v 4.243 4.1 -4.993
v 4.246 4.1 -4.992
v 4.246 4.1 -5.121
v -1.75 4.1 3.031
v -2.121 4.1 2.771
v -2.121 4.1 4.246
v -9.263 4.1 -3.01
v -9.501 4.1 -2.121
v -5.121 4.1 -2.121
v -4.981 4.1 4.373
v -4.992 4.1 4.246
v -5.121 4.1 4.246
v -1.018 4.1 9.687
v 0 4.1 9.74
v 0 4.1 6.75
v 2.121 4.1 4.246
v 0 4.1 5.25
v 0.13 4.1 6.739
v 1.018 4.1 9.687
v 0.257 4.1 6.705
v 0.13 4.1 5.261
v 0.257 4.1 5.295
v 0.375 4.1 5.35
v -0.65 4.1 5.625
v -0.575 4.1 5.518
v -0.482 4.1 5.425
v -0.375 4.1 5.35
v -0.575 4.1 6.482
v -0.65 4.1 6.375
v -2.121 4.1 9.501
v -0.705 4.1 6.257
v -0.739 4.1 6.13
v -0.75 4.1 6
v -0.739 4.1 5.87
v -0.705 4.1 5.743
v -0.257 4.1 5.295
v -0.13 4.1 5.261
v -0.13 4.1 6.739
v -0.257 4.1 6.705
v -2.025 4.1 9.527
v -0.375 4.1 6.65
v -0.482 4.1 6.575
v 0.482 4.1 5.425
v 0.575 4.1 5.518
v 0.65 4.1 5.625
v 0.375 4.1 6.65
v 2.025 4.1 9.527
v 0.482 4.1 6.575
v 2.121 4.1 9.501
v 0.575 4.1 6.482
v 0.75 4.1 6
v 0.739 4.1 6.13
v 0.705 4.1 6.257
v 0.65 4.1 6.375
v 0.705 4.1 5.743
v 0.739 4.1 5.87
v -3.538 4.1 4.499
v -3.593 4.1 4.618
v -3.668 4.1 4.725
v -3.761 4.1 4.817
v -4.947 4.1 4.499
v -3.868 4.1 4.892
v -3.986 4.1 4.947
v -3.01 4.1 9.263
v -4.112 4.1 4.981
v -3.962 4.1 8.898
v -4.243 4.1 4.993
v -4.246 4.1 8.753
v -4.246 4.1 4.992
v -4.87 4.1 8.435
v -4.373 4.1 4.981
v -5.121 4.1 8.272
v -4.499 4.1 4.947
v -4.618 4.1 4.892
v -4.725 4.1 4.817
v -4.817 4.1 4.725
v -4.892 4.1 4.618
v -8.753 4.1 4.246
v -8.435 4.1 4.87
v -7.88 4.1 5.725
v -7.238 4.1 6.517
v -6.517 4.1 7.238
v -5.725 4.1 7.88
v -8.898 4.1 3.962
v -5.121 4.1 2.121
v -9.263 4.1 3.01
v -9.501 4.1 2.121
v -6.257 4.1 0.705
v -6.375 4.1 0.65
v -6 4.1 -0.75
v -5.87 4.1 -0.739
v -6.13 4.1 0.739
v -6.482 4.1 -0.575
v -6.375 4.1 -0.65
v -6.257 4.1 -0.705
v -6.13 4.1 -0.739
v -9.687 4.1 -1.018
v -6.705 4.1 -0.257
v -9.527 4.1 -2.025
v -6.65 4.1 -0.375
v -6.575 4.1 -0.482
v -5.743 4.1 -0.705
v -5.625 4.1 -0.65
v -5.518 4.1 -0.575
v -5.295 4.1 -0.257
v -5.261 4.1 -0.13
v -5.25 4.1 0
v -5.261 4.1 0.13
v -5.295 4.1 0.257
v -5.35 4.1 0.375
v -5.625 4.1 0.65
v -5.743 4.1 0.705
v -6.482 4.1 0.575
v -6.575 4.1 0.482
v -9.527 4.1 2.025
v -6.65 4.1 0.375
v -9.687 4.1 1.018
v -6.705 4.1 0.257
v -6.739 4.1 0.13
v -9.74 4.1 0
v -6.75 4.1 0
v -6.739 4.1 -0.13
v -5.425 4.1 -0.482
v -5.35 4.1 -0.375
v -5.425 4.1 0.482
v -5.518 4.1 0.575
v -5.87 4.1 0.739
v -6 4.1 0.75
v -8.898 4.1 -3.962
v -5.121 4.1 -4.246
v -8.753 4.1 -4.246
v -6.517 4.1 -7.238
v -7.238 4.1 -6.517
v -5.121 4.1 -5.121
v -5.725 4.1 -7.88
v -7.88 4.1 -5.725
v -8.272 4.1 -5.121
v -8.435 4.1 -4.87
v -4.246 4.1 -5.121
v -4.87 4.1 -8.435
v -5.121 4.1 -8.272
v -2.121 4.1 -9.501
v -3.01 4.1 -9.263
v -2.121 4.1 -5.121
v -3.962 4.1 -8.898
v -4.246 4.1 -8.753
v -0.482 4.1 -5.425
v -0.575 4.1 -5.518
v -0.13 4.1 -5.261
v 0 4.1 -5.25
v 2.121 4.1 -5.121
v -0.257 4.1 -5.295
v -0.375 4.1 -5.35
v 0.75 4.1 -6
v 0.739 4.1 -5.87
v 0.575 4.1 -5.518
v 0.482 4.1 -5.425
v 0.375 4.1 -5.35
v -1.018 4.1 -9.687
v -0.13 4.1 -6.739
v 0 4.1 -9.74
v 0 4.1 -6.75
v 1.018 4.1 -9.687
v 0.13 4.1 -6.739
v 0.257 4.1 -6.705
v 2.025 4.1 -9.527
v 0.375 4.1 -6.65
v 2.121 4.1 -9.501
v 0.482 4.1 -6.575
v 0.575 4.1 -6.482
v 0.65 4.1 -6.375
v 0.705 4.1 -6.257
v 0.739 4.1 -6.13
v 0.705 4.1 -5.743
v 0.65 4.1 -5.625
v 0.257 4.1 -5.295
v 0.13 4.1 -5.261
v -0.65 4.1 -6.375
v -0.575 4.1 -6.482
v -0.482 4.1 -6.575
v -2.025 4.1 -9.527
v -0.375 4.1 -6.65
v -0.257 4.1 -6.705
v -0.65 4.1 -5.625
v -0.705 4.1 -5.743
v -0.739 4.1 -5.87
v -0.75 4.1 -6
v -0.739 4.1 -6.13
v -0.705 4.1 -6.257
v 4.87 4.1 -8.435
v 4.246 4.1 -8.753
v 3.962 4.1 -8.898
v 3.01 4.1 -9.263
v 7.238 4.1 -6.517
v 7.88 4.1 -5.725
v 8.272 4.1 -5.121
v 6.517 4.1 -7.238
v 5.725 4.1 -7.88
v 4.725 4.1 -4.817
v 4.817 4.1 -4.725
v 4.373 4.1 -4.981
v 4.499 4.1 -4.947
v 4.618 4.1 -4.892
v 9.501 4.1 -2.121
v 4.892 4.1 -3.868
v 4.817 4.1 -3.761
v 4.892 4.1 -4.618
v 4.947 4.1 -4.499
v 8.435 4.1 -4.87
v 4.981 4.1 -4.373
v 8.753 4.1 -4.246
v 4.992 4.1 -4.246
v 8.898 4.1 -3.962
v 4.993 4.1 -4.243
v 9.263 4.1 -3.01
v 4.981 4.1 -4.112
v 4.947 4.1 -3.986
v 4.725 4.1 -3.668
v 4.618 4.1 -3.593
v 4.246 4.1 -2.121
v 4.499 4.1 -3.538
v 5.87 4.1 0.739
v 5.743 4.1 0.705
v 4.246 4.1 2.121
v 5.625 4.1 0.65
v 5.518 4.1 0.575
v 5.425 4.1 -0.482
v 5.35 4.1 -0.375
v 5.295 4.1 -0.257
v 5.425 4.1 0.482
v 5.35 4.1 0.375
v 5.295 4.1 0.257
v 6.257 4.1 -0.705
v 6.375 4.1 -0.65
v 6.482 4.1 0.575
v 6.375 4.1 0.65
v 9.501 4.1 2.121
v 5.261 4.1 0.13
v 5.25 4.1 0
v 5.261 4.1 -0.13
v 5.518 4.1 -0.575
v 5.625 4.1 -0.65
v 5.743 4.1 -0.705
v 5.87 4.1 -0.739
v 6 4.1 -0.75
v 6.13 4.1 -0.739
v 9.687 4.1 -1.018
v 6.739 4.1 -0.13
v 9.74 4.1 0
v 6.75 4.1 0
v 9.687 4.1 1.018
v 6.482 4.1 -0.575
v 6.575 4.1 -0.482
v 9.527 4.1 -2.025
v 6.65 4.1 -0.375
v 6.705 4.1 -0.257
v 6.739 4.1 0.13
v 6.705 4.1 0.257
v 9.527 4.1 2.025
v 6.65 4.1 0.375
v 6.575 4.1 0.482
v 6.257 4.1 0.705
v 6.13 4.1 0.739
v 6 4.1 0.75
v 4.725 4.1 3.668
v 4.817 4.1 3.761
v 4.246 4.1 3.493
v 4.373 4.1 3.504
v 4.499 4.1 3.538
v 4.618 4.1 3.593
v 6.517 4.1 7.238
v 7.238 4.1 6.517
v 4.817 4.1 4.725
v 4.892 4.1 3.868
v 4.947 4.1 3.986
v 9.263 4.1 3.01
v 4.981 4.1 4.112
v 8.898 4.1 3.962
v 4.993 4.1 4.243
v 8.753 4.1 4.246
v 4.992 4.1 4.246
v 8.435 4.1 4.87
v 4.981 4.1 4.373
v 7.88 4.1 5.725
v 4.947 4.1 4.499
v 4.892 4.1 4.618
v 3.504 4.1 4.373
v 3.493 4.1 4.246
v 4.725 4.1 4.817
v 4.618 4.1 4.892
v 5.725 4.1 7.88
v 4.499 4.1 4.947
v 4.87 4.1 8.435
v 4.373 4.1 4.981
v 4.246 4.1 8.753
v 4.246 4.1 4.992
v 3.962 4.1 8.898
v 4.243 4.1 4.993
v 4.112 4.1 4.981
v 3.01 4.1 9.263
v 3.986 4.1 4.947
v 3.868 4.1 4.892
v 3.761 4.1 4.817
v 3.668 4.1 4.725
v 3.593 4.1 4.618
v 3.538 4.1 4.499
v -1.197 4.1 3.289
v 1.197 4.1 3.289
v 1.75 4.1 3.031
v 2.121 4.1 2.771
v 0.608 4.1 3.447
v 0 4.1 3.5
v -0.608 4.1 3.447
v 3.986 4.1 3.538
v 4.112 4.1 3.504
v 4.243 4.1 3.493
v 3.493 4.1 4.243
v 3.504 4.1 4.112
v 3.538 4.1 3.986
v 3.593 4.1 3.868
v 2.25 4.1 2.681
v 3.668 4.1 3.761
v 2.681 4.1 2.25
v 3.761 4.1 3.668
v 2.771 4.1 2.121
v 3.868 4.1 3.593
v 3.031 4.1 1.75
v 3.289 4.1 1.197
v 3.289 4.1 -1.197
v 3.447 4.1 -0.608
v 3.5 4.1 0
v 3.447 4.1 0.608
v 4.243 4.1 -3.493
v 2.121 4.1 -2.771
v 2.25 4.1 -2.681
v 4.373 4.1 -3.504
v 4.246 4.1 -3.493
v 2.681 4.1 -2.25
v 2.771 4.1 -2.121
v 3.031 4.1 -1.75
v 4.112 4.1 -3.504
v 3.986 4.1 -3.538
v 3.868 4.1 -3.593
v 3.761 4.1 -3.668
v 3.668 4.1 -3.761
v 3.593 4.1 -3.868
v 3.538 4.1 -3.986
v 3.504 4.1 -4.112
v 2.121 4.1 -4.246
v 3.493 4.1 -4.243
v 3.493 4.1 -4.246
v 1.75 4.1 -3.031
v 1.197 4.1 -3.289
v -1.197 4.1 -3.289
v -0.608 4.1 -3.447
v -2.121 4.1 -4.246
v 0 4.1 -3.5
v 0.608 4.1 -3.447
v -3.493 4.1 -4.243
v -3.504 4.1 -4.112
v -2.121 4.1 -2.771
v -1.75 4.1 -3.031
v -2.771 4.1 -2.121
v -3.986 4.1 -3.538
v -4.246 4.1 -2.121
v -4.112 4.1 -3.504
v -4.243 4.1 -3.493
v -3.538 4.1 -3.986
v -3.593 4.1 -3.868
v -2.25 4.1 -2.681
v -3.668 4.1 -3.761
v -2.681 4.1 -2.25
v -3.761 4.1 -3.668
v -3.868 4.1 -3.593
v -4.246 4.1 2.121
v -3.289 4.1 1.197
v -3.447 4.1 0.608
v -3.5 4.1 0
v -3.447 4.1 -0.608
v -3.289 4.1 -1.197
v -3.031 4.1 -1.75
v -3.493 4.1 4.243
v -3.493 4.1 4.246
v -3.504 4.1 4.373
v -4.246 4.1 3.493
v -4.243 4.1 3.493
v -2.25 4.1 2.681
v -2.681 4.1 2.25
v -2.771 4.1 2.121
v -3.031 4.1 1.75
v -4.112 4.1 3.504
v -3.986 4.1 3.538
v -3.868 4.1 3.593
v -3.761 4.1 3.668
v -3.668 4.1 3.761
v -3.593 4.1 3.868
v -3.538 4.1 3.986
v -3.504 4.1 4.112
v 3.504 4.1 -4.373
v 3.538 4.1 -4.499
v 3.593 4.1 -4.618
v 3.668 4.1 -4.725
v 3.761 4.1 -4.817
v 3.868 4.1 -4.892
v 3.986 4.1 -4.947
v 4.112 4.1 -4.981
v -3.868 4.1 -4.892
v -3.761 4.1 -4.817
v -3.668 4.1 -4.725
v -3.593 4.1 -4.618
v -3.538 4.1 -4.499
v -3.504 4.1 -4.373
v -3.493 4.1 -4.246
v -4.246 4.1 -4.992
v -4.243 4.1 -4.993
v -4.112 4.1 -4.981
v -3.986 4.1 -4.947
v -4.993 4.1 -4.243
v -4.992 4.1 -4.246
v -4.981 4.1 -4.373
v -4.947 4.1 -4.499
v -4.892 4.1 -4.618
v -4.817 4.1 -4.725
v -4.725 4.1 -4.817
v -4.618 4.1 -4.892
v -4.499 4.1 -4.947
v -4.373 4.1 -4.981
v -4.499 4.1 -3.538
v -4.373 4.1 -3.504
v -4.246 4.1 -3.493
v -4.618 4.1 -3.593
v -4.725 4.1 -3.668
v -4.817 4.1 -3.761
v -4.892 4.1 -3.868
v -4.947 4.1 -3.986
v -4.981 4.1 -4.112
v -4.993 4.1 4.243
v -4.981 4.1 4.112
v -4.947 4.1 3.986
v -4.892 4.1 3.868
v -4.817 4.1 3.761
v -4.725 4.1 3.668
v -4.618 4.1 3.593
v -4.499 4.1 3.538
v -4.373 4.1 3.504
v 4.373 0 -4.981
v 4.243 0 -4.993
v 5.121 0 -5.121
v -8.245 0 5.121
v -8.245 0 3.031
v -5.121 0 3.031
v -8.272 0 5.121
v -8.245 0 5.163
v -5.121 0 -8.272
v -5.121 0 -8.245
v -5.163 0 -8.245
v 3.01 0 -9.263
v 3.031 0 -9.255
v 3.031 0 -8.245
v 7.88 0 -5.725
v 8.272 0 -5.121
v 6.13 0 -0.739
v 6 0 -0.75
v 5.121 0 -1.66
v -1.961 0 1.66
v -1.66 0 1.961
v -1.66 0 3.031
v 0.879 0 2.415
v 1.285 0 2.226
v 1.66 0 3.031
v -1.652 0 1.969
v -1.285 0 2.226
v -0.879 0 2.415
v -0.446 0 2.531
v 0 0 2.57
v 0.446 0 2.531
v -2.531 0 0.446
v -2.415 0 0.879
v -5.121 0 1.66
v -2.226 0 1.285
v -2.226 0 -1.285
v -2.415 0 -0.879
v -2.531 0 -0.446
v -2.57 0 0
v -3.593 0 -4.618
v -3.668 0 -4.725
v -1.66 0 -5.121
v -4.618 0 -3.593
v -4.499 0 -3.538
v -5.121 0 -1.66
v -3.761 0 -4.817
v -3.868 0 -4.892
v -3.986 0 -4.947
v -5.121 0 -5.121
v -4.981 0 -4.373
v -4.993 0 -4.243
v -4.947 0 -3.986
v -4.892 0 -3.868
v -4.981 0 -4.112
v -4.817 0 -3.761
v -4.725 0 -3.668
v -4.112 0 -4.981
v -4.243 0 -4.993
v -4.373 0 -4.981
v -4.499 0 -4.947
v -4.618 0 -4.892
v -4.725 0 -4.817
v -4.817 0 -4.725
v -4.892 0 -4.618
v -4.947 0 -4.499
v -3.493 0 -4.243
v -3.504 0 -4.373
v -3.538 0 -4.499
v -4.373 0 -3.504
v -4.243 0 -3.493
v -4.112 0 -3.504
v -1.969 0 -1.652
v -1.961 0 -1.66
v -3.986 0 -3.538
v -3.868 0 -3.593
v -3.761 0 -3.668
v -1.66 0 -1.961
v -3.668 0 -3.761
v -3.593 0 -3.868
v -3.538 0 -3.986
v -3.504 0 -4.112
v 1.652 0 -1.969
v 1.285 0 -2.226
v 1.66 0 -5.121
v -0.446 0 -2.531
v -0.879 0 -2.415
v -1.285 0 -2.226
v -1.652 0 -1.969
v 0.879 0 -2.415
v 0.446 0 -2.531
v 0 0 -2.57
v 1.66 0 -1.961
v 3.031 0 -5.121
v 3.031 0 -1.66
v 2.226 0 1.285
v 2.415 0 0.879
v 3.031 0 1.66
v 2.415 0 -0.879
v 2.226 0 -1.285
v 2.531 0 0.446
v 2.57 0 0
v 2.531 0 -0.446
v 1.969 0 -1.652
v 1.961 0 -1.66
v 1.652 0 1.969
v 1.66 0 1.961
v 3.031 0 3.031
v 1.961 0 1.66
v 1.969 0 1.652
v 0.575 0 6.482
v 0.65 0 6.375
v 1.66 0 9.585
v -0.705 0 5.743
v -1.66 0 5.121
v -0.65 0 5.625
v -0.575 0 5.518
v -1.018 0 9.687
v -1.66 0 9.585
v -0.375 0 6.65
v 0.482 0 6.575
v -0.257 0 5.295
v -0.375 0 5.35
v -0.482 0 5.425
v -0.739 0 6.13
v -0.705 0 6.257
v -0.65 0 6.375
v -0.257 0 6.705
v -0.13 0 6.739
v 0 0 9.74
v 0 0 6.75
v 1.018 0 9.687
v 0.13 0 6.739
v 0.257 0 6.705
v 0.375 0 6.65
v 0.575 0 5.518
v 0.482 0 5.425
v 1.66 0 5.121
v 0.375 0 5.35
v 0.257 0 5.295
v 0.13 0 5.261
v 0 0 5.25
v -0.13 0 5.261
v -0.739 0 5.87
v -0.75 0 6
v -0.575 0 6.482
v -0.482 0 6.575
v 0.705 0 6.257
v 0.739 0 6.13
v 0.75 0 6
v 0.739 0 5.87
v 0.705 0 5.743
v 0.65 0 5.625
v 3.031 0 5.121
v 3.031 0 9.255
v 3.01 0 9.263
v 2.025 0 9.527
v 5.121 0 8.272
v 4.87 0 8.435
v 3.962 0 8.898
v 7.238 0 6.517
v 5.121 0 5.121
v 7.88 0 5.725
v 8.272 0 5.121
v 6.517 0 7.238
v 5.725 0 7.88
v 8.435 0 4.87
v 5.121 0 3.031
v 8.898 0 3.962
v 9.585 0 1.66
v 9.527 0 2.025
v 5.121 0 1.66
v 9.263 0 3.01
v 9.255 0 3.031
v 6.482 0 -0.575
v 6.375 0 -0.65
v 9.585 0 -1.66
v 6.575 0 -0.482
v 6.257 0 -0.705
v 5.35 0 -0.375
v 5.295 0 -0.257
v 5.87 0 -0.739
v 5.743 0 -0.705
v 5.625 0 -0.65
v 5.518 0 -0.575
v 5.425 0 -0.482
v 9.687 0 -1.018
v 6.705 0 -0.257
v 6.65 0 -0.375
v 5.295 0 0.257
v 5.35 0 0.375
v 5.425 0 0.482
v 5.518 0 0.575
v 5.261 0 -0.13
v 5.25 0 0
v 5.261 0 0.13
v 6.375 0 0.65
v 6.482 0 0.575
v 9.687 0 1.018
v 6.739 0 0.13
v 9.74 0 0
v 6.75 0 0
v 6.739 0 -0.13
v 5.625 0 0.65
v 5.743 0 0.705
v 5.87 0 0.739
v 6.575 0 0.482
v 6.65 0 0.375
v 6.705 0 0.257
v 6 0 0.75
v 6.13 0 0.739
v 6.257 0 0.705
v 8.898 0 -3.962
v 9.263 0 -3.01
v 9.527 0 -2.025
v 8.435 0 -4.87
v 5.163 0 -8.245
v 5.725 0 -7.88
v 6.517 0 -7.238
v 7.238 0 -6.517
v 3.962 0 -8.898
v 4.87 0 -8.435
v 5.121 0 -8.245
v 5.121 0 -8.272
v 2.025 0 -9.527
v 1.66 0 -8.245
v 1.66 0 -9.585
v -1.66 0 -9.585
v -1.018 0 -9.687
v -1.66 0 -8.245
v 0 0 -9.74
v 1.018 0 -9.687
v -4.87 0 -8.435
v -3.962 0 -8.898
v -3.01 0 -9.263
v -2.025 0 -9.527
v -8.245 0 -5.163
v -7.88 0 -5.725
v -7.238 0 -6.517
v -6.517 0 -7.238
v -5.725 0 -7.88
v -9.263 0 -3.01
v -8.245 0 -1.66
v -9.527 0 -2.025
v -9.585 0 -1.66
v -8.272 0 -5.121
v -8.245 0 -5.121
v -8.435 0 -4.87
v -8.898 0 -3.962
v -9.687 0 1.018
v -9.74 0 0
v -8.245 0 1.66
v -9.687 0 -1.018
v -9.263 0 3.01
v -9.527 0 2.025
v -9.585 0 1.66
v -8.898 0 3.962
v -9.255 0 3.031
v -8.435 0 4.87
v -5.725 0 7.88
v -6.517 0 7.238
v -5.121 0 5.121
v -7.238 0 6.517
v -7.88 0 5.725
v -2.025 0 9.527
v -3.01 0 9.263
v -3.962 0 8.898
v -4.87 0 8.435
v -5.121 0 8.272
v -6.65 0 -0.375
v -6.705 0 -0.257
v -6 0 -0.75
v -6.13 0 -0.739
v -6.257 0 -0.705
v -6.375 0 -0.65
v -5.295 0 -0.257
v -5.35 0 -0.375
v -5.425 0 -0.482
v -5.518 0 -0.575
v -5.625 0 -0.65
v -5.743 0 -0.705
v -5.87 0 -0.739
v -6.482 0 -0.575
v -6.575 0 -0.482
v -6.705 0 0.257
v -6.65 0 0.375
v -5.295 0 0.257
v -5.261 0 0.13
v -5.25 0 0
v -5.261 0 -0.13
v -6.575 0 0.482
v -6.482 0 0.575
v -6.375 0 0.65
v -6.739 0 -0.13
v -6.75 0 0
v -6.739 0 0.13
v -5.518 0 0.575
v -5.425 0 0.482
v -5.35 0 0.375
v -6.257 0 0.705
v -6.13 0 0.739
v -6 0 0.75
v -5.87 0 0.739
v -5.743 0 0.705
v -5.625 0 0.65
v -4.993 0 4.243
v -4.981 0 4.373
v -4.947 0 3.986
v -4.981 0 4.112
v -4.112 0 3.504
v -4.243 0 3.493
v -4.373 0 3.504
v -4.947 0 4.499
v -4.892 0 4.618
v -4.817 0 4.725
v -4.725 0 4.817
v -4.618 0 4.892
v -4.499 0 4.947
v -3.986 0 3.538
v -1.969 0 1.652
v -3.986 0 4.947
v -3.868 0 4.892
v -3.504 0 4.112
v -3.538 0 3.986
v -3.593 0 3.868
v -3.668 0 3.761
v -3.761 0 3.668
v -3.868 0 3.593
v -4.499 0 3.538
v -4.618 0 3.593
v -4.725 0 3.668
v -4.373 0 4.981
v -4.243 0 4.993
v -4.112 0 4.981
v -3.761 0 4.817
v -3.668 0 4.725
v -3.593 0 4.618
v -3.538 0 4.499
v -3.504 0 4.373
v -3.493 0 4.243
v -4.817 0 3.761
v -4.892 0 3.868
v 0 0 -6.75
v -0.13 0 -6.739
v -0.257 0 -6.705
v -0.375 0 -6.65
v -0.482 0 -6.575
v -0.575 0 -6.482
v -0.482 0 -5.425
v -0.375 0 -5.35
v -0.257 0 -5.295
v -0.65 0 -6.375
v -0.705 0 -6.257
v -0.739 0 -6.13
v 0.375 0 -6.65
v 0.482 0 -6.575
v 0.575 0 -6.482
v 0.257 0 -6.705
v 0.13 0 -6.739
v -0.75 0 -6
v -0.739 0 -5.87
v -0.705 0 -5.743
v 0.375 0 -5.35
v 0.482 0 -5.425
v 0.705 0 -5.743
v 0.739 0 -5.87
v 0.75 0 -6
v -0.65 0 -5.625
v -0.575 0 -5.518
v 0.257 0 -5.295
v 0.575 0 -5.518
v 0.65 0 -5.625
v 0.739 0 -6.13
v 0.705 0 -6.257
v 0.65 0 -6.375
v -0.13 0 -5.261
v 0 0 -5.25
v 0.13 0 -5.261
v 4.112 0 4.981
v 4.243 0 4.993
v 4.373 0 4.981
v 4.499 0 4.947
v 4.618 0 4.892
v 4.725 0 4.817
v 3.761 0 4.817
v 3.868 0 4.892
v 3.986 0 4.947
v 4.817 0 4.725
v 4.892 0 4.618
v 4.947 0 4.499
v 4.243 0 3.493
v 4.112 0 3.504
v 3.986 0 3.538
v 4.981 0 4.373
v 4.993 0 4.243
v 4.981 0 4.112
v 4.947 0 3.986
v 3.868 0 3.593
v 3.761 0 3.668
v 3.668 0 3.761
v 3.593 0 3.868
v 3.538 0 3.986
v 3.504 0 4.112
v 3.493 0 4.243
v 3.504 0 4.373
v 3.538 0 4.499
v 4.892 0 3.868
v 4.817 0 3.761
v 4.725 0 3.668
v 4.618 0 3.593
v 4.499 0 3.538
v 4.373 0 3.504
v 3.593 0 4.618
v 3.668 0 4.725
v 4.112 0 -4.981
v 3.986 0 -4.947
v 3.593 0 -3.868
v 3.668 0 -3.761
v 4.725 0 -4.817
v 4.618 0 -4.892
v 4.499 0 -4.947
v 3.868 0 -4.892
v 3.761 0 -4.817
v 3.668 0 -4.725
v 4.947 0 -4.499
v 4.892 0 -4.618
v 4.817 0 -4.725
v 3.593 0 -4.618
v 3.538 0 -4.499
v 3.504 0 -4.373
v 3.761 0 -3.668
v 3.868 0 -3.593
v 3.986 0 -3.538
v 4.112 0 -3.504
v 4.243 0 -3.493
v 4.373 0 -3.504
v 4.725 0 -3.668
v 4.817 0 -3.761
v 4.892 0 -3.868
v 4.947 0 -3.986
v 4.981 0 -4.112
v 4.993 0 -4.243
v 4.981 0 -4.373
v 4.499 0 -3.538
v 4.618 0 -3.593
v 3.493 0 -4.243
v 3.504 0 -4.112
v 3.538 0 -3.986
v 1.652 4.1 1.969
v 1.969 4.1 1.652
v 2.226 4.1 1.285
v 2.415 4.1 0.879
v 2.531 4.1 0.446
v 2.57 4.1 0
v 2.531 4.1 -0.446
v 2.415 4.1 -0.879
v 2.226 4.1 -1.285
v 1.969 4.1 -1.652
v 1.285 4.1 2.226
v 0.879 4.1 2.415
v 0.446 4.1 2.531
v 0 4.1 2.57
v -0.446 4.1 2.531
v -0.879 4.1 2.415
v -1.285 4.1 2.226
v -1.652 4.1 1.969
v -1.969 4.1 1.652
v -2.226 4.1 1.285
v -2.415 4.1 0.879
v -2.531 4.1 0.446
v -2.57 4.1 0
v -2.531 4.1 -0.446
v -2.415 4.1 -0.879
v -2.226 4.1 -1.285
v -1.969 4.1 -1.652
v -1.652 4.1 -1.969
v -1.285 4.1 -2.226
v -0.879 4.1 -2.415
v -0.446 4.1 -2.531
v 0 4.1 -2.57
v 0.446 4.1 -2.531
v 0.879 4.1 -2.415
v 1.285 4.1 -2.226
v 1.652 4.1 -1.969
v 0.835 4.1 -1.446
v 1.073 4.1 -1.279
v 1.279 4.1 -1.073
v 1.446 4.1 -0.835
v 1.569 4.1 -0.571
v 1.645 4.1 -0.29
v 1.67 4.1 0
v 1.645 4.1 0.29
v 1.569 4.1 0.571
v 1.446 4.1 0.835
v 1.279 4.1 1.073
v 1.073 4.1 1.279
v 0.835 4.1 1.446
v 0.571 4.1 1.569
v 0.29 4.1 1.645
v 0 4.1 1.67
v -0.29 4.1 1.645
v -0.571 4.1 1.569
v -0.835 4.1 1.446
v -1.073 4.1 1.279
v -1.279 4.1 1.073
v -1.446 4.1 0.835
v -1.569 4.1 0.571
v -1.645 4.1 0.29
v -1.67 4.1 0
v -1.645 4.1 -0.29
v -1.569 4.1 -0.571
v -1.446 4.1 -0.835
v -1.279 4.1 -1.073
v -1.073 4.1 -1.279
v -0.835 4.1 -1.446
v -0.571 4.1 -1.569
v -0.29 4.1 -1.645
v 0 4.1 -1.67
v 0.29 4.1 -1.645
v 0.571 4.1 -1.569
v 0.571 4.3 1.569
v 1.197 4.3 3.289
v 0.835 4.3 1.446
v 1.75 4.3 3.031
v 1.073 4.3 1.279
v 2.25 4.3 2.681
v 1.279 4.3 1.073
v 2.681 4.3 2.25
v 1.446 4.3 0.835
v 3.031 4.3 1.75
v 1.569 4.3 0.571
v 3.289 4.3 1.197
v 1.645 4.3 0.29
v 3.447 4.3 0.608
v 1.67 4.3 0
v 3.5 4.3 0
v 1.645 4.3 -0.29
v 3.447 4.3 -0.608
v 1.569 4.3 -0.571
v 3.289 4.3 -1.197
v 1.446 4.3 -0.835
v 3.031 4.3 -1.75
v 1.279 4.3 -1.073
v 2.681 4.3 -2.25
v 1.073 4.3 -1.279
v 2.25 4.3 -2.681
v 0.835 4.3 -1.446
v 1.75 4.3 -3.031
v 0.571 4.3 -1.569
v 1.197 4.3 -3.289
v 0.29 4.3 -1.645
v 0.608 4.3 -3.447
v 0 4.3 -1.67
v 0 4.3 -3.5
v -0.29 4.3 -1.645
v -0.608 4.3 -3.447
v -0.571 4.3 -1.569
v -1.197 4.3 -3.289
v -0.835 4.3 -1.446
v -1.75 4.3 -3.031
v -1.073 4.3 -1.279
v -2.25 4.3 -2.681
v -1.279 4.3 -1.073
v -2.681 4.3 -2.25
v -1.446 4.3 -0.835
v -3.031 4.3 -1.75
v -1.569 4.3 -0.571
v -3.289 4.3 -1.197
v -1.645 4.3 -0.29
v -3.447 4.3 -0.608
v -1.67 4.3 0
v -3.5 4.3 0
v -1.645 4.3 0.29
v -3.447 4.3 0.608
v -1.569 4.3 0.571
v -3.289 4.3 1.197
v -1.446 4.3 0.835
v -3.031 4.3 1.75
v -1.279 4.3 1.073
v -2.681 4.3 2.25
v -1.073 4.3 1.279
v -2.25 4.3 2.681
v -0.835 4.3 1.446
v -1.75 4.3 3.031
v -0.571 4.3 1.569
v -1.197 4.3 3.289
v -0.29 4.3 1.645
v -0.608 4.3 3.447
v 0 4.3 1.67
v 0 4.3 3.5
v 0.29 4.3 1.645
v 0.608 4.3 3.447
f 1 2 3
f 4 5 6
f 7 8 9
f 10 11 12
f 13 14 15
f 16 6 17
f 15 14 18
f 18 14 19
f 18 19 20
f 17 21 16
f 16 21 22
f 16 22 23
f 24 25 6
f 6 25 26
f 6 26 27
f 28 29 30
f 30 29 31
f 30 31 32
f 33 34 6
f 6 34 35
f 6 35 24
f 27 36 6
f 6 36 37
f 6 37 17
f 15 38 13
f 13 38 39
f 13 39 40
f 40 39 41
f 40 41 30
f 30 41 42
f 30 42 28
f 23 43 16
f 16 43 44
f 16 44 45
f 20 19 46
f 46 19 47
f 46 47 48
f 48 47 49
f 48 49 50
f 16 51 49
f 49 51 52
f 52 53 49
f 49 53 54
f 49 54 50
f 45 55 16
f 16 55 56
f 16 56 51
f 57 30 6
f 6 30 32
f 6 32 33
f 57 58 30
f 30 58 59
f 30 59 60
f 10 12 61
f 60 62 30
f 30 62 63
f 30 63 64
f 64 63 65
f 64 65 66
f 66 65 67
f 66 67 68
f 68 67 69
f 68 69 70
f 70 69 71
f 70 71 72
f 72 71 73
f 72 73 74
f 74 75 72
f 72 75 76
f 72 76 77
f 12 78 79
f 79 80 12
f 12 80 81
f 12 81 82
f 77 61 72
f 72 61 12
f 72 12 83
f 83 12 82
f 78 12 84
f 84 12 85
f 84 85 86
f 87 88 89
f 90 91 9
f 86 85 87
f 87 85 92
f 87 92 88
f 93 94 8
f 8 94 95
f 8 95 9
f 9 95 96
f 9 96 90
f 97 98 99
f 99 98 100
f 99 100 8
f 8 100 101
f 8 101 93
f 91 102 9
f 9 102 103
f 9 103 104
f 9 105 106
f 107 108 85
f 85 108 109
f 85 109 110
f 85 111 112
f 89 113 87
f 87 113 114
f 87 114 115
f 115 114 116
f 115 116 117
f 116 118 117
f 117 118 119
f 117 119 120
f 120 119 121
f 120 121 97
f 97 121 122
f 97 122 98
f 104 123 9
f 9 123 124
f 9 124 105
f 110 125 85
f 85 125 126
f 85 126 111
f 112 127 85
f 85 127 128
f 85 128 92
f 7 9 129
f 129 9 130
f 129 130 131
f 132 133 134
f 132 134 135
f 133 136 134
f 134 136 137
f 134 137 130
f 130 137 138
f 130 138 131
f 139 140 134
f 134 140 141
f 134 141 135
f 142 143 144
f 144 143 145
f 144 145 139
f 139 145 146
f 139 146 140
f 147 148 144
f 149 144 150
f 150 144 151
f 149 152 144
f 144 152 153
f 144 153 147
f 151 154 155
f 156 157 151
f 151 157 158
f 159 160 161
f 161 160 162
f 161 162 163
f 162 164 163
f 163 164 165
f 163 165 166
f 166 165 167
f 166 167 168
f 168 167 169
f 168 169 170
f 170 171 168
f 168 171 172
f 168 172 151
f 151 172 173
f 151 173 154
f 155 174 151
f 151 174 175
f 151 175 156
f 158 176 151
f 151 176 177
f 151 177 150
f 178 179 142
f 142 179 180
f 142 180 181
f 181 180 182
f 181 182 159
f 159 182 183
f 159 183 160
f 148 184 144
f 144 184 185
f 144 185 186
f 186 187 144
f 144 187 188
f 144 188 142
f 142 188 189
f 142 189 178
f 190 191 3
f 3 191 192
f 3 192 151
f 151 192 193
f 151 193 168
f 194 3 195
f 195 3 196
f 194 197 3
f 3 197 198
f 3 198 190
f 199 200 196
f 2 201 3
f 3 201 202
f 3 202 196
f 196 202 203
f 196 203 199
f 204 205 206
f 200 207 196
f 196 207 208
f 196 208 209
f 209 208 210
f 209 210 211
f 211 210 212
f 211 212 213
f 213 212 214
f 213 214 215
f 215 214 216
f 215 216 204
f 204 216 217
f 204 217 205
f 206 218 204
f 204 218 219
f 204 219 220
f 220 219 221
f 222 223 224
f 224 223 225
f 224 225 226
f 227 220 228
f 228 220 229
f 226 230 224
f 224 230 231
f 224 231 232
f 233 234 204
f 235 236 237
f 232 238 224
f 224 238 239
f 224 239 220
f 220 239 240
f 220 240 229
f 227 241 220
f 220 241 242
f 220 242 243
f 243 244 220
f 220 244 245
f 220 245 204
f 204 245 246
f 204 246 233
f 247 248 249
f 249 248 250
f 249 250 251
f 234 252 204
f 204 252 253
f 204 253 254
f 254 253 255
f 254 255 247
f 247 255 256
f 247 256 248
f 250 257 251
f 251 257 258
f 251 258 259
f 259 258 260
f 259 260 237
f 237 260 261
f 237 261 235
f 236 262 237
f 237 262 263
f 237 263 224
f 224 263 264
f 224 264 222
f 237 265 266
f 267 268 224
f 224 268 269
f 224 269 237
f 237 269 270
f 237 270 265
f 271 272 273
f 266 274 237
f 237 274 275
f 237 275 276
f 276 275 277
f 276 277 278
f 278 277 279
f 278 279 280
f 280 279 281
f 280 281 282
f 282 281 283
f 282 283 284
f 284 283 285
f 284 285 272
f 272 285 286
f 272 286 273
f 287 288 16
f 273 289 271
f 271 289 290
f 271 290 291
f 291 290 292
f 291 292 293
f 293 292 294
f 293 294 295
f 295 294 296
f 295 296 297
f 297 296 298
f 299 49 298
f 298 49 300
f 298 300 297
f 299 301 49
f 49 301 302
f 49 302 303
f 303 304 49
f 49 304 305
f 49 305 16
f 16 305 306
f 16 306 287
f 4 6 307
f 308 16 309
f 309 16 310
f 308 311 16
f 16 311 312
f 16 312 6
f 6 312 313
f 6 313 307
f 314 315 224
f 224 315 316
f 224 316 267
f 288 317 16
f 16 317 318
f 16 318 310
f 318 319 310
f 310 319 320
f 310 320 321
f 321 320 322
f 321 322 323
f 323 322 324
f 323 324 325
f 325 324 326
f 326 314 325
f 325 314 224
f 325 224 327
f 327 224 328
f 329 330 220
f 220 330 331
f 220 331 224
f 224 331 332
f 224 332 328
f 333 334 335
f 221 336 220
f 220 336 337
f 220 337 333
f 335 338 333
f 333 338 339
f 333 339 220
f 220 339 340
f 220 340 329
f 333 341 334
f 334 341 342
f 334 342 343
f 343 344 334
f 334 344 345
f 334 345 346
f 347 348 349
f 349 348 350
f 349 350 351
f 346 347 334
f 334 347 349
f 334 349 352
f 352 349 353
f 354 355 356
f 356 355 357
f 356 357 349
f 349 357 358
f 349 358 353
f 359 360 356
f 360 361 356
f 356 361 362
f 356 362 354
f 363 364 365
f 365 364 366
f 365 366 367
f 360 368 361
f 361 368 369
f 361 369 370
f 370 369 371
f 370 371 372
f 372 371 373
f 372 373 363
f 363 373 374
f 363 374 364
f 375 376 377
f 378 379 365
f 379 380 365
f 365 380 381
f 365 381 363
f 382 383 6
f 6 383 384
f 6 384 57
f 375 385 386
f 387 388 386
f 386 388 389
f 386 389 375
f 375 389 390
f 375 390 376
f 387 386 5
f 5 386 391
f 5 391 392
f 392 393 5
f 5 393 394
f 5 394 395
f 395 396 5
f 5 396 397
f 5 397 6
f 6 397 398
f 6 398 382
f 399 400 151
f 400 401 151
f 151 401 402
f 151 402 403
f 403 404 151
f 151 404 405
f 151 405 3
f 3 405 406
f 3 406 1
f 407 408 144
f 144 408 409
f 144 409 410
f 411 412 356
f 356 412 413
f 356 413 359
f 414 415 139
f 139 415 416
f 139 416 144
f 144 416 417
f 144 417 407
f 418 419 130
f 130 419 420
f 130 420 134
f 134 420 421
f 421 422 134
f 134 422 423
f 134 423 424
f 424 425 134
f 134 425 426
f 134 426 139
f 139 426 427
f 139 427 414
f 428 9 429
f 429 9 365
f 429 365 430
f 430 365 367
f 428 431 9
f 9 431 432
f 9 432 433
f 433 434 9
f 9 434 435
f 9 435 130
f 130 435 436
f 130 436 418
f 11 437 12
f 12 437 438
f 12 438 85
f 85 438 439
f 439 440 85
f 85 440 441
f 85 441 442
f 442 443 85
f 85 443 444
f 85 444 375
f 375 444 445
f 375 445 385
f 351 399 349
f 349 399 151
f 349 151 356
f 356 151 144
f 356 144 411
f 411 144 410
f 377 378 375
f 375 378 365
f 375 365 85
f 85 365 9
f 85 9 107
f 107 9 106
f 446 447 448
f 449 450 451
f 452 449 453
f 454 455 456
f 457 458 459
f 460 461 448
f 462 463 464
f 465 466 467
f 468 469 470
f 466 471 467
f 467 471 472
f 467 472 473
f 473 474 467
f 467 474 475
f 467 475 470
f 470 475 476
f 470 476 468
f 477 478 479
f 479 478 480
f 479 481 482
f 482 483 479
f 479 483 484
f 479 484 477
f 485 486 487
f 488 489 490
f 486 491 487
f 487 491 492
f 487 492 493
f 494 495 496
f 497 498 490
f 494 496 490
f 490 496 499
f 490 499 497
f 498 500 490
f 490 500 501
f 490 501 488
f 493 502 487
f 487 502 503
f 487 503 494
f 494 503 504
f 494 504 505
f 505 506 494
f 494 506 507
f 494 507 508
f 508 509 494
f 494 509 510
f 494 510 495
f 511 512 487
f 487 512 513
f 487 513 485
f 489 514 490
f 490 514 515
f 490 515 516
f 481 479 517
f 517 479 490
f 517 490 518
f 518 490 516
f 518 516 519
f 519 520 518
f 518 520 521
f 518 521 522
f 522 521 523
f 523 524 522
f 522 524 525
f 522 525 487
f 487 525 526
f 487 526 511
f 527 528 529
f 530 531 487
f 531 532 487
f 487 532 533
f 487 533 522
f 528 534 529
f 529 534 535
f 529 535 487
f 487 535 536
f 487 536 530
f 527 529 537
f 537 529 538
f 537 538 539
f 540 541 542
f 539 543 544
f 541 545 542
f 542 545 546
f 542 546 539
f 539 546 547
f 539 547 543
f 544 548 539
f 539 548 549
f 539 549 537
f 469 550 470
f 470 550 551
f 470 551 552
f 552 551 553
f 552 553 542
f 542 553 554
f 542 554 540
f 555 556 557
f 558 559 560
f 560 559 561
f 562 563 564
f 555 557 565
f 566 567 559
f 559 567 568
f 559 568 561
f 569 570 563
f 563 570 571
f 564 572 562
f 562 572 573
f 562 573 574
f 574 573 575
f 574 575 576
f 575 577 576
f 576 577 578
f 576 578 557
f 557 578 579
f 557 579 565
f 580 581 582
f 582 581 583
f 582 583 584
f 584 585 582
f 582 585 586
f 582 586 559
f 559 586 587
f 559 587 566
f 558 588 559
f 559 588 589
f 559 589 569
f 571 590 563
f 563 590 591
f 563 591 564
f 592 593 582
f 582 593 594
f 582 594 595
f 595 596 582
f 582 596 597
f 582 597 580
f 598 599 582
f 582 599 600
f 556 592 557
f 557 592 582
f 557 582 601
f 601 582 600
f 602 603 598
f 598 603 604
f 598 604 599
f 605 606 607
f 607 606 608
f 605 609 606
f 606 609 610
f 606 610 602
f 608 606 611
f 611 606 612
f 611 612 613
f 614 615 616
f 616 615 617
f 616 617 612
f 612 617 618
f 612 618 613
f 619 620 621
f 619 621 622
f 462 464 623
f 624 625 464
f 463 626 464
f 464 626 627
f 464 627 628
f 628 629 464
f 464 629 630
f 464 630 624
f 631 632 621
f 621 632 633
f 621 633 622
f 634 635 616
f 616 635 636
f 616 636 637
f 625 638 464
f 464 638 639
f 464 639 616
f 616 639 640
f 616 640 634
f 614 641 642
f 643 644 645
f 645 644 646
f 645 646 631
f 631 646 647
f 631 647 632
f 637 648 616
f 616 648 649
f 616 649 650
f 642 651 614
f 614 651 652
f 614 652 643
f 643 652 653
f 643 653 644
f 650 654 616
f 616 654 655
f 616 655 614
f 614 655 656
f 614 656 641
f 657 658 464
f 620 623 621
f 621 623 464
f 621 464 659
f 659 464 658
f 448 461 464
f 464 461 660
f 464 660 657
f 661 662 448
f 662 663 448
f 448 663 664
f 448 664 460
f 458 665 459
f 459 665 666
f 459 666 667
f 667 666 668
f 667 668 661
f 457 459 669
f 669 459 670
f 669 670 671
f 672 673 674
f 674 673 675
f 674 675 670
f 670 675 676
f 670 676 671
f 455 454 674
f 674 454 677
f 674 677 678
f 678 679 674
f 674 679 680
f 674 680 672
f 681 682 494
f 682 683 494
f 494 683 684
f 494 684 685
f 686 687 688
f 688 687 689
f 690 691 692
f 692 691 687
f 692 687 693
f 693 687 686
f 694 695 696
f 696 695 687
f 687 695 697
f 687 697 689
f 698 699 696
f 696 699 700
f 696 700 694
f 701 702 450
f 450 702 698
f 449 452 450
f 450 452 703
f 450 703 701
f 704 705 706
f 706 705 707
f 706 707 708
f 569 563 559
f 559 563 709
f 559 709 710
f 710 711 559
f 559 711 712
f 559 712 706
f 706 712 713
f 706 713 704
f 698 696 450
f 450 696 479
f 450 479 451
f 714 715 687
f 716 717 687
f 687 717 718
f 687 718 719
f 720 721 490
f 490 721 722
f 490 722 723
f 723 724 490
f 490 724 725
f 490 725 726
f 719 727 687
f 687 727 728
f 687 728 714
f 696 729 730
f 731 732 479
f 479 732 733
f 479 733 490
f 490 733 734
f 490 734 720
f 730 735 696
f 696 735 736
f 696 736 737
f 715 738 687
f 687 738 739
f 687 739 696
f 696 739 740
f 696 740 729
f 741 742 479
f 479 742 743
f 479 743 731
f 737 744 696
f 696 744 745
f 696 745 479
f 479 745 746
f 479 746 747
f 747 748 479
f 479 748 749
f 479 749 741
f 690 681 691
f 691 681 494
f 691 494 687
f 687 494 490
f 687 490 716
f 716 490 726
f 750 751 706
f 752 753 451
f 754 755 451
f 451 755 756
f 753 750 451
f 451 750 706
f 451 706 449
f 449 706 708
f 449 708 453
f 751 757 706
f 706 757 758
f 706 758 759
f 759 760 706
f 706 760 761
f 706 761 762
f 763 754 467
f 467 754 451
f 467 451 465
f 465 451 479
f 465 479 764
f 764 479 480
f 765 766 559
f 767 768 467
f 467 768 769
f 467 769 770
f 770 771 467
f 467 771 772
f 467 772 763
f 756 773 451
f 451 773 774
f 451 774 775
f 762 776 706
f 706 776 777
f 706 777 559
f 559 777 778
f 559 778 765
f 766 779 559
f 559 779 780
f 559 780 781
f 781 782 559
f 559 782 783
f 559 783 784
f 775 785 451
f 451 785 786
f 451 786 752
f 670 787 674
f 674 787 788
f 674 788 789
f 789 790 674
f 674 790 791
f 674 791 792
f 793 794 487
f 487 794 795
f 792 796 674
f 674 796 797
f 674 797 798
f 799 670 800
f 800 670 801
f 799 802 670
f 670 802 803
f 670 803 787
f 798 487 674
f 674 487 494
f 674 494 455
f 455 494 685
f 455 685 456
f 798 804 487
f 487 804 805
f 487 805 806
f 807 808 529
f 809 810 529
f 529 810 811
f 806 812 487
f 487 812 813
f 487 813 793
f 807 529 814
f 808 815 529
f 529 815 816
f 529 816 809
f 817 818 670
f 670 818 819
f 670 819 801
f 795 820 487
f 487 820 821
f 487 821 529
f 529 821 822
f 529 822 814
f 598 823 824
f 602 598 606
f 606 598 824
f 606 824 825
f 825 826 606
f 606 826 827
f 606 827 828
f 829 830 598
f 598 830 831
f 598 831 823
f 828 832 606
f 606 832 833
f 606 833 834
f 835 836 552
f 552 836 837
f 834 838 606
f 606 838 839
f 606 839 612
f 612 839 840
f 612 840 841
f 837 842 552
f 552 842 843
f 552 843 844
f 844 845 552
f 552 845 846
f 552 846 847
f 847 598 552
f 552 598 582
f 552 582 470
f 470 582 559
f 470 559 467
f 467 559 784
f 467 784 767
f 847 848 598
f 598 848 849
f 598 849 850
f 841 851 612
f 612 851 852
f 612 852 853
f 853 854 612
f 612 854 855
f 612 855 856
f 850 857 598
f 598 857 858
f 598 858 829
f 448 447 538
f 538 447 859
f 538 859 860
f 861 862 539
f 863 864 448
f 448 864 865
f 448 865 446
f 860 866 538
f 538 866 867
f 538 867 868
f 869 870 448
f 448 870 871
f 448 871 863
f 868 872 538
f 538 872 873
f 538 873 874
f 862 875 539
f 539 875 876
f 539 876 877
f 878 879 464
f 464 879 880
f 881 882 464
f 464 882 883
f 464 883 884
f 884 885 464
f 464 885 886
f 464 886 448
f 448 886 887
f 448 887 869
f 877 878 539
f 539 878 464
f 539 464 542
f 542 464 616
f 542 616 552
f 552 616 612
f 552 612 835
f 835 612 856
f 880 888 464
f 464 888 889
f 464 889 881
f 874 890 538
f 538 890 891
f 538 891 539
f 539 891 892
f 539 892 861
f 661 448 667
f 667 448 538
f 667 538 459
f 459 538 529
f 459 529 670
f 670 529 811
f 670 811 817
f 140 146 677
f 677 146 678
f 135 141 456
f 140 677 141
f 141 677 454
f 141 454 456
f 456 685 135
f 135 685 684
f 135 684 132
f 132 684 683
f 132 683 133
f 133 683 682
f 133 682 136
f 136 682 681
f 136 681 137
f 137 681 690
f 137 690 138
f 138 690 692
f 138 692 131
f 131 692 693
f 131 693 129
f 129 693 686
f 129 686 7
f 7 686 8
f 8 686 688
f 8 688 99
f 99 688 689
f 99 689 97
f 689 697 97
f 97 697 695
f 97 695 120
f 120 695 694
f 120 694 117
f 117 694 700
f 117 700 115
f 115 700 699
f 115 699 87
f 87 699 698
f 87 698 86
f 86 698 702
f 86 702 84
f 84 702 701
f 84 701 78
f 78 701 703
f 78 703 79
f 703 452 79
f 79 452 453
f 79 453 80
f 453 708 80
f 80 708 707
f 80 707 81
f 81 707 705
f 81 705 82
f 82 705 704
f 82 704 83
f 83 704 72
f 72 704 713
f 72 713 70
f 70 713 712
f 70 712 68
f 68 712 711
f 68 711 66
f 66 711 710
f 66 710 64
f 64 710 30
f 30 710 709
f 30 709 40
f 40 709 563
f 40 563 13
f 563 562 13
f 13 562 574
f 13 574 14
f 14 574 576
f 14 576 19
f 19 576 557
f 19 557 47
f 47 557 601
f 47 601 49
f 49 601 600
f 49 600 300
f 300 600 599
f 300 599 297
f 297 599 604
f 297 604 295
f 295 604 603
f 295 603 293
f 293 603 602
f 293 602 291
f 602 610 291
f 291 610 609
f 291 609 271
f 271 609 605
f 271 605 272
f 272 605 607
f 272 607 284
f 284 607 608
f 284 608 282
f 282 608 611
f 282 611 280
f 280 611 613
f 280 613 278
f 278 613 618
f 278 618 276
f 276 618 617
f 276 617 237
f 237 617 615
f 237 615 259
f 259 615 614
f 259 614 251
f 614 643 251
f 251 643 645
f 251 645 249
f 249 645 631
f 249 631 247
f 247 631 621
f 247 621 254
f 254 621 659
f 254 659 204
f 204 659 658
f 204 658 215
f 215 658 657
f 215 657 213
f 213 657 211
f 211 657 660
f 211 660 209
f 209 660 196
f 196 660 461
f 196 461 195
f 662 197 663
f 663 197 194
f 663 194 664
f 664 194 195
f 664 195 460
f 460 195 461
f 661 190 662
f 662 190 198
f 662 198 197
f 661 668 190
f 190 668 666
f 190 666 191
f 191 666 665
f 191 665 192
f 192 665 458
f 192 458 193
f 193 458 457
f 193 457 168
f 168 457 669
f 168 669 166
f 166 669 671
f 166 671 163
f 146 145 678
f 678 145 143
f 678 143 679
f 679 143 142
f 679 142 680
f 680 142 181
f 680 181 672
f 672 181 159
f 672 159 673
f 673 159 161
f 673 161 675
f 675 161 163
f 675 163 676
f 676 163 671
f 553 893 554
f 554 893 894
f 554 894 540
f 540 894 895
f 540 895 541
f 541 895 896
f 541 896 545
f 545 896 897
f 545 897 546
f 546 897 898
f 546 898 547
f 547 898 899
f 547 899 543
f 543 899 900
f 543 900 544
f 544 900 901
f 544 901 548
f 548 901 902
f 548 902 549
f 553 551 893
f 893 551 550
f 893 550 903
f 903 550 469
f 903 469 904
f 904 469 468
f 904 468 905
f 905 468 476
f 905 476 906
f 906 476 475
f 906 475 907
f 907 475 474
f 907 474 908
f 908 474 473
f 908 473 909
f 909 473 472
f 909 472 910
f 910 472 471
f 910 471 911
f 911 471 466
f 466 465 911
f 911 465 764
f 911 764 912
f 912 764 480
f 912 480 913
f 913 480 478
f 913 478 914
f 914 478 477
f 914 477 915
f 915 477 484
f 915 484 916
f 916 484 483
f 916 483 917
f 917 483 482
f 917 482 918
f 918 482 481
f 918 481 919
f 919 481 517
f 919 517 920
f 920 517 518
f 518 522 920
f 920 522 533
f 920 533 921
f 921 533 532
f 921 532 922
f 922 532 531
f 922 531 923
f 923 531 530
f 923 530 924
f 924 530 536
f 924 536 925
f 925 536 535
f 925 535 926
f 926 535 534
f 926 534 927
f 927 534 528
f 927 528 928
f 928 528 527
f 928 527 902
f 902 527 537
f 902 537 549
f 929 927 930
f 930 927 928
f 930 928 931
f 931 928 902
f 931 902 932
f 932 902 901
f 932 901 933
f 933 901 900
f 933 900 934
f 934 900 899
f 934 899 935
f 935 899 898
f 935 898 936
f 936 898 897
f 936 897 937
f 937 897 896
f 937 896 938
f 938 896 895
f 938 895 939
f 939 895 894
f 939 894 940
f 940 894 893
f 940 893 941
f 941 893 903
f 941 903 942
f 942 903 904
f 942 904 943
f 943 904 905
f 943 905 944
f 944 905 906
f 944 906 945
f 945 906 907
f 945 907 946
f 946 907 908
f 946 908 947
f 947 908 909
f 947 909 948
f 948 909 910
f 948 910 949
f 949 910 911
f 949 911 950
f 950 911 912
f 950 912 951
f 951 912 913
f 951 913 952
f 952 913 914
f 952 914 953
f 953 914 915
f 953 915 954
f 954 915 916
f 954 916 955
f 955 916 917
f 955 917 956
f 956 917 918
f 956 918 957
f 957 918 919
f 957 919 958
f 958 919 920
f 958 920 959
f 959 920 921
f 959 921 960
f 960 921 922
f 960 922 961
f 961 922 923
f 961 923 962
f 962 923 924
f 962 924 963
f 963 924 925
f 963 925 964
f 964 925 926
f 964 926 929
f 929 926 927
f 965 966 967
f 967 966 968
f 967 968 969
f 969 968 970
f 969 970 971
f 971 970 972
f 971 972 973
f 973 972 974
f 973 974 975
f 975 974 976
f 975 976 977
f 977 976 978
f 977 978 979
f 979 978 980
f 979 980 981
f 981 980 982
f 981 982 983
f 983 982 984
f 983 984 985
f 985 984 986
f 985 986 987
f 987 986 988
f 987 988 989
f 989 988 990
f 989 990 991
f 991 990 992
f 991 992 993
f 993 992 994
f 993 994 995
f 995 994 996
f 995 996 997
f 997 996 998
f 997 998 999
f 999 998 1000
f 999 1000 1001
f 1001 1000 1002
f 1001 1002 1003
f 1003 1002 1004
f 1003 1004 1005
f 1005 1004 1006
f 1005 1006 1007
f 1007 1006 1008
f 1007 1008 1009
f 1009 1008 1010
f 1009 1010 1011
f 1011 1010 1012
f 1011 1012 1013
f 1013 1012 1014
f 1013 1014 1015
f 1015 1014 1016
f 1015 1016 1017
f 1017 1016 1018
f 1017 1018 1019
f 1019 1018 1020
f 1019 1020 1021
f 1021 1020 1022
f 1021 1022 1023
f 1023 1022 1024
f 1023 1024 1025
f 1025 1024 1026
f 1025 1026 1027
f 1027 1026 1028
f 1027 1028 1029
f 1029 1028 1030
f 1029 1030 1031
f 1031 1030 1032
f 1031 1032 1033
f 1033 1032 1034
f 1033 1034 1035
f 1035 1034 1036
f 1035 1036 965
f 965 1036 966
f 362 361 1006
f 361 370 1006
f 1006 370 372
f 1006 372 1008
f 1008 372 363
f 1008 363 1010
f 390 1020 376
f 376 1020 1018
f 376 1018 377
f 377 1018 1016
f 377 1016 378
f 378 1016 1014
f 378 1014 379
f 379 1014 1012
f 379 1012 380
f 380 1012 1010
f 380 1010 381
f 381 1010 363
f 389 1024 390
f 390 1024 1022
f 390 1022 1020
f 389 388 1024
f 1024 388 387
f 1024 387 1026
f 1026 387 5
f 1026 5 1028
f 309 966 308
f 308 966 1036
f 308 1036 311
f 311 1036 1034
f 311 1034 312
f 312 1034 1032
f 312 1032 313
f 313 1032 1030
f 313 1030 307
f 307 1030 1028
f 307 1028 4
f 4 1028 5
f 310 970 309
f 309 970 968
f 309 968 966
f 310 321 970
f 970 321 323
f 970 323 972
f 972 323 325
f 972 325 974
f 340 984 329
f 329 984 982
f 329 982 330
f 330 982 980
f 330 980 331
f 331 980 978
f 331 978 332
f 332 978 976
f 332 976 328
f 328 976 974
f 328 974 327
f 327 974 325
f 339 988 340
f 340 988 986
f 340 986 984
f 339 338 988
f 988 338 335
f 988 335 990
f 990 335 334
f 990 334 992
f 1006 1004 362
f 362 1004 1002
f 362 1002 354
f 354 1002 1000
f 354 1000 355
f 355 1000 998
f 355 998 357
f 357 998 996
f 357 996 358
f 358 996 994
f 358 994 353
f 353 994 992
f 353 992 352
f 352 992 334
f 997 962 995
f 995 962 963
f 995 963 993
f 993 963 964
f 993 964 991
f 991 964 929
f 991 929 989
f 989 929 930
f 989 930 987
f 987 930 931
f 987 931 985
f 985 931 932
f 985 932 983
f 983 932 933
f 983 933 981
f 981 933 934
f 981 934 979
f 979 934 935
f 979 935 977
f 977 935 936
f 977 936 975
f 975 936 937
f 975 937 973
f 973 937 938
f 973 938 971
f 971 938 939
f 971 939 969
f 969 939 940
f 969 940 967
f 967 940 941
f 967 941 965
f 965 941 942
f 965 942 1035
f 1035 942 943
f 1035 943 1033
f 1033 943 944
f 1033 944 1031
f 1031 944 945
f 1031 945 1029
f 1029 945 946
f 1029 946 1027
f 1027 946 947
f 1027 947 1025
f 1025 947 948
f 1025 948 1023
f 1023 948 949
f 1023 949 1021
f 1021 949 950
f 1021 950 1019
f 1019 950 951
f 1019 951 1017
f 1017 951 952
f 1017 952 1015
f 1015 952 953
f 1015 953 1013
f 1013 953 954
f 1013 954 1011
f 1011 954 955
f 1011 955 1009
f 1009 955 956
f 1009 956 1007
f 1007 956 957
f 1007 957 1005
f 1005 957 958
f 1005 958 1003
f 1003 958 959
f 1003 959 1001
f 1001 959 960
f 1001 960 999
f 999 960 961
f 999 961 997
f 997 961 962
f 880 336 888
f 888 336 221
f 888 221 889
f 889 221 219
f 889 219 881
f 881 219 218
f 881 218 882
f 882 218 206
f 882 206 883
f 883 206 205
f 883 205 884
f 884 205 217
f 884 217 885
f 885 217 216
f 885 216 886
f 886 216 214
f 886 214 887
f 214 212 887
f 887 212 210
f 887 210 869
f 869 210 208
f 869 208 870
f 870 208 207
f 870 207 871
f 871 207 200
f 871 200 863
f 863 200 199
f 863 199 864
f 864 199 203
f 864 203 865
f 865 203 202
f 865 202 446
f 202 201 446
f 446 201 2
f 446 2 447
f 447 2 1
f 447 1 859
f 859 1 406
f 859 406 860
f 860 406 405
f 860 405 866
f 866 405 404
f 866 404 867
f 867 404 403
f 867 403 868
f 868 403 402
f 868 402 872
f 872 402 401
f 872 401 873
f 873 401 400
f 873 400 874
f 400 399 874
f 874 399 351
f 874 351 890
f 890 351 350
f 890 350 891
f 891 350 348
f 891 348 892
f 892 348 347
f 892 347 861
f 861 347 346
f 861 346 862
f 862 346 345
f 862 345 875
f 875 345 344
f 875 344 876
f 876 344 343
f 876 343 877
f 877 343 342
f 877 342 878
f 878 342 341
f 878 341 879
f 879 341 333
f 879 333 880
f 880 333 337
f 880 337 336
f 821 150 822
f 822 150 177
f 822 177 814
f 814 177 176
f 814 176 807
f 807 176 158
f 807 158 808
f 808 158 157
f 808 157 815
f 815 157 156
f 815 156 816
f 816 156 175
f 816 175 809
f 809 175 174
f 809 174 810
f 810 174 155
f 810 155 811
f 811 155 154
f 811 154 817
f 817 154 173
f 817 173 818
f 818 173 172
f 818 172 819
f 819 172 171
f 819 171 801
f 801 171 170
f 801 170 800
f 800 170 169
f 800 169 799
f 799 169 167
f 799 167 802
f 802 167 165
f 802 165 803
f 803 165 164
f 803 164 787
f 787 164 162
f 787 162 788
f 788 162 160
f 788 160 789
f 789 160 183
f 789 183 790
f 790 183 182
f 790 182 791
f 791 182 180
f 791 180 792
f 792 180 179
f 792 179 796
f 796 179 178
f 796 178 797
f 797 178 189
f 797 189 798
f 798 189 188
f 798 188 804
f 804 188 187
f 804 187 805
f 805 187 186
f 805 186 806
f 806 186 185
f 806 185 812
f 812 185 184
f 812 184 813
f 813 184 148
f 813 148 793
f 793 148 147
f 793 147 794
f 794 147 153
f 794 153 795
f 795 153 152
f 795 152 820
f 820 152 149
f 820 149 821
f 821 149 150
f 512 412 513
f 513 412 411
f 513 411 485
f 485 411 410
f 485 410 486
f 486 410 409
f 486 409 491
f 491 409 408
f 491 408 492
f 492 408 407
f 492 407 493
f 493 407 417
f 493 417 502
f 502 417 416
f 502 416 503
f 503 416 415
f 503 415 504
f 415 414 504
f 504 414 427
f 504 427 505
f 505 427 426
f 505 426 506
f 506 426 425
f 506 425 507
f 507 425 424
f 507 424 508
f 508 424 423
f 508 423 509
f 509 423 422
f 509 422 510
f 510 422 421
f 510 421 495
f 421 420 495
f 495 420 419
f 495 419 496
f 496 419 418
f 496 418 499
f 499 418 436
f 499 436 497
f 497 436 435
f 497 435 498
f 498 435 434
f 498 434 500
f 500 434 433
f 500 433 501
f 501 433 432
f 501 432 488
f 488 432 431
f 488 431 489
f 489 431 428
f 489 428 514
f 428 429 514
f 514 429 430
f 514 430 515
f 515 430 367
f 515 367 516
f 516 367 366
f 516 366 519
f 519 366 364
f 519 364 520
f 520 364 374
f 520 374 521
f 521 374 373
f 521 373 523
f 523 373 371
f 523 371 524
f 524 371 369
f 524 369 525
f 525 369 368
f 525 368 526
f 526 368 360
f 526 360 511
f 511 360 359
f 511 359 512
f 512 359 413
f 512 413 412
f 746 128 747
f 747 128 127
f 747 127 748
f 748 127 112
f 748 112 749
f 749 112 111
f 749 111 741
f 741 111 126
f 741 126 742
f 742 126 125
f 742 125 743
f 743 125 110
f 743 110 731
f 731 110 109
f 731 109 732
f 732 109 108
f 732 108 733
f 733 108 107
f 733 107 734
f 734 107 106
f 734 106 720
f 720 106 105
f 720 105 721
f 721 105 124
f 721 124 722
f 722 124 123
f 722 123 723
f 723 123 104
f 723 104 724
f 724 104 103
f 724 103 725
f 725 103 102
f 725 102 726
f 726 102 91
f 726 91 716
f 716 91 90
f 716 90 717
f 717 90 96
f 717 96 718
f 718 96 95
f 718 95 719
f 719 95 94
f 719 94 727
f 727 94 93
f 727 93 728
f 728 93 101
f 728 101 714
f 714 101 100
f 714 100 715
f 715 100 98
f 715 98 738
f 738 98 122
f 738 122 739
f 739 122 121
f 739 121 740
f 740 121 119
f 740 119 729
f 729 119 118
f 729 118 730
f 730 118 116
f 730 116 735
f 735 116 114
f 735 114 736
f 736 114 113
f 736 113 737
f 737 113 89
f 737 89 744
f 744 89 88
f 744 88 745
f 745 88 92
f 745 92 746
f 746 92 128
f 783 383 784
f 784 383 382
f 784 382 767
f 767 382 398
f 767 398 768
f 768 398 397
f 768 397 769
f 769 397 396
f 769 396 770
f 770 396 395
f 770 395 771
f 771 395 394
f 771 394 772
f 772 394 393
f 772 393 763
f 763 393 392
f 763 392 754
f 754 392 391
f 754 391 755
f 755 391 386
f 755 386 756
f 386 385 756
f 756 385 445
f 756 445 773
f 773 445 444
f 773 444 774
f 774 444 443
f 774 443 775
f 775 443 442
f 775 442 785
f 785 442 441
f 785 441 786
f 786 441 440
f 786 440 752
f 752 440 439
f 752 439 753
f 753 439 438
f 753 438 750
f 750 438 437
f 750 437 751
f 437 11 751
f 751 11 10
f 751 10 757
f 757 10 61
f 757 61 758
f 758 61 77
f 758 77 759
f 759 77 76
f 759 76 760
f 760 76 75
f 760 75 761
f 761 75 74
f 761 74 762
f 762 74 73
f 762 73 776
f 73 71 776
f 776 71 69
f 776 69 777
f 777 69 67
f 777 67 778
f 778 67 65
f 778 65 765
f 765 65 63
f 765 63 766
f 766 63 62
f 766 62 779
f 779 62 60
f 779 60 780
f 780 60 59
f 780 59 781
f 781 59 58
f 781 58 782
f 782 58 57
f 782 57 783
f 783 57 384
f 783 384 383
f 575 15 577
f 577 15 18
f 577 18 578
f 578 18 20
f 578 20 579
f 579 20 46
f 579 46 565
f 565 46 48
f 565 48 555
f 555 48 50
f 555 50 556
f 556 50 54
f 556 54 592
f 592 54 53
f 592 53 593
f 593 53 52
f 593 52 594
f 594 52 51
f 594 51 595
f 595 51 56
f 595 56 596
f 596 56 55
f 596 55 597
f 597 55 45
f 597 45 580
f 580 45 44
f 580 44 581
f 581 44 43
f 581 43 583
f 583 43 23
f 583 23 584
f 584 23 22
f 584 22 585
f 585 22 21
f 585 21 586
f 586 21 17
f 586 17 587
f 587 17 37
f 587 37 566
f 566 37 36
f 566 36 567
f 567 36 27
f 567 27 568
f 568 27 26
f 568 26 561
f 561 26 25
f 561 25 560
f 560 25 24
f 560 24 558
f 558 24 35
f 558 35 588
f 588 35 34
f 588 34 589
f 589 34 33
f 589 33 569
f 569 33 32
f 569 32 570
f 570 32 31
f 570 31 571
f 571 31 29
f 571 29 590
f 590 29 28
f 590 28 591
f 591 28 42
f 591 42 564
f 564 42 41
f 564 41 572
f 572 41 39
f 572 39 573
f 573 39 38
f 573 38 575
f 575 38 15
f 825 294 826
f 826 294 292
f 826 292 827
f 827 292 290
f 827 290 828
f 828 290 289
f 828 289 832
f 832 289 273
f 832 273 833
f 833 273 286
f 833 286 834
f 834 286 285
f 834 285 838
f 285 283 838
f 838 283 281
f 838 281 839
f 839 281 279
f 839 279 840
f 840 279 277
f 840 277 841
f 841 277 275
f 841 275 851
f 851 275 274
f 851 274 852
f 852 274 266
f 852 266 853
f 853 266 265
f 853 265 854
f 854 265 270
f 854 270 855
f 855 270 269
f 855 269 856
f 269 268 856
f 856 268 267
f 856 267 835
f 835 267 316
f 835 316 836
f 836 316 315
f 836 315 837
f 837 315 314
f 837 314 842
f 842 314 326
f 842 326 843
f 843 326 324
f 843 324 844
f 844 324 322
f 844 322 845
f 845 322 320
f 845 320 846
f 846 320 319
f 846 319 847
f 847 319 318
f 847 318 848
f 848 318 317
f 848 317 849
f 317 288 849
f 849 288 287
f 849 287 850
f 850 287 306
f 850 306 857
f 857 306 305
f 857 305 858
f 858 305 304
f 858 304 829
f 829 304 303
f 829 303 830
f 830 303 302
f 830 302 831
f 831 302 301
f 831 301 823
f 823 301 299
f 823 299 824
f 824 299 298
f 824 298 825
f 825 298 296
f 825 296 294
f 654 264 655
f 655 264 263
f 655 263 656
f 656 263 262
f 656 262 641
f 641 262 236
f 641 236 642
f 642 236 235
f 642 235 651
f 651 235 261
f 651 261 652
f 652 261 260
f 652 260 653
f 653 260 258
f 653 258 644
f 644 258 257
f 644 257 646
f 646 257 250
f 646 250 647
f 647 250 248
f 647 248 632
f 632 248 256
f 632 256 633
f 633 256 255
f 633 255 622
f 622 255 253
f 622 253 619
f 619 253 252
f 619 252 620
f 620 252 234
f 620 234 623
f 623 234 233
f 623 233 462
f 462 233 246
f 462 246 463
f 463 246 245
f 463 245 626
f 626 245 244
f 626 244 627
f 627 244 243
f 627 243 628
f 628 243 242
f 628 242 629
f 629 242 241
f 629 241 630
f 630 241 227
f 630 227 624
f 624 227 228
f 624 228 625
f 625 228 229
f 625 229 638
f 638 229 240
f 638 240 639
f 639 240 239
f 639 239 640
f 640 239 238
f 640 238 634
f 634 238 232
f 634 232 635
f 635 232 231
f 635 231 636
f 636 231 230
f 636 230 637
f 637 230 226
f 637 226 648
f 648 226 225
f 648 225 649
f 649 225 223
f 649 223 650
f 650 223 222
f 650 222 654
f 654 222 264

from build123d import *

# Parameters (mm, degrees)
SKETCH1_R        = 9.74
SKETCH1_R_2      = 2.57
MOUNTBODY_DEPTH  = 4.1
SKETCH2_R        = 3.5
SKETCH2_R_2      = 1.67
CAP_DEPTH        = 0.2
SKETCH3_R        = 0.75
SCREWHOLES_DEPTH = 15.371680486


with BuildPart() as part:
    # Sketch1 → MountBody (new body)
    with BuildSketch(Plane(origin=(0, 0, 0), x_dir=(1, 0, 0), z_dir=(0, 1, 0))):
        with Locations(Location((0, 0, 0), (0, 0, 270))):
            Circle(SKETCH1_R)
        with Locations(Location((0, 0, 0), (0, 0, 270))):
            Circle(SKETCH1_R_2, mode=Mode.SUBTRACT)
    extrude(amount=MOUNTBODY_DEPTH)

    # Sketch2 → Cap (add)
    with BuildSketch(Plane(origin=(0, 4.1, 0), x_dir=(1, 0, 0), z_dir=(0, 1, 0))):
        with Locations(Location((0, 0, 0), (0, 0, 270))):
            Circle(SKETCH2_R)
        with Locations(Location((0, 0, 0), (0, 0, 270))):
            Circle(SKETCH2_R_2, mode=Mode.SUBTRACT)
    extrude(amount=CAP_DEPTH)

    # Sketch3 → ScrewHoles (cut, through all)
    with BuildSketch(Plane(origin=(0, 4.1, 0), x_dir=(1, 0, 0), z_dir=(0, 1, 0))):
        with Locations(Location((6, 0, 0), (0, 0, 270))):
            Circle(SKETCH3_R)
        with Locations(Location((4.242640687, -4.242640687, 0), (0, 0, 270))):
            Circle(SKETCH3_R)
        with Locations(Location((0, -6, 0), (0, 0, 270))):
            Circle(SKETCH3_R)
        with Locations(Location((-4.242640687, -4.242640687, 0), (0, 0, 270))):
            Circle(SKETCH3_R)
        with Locations(Location((-6, 0, 0), (0, 0, 270))):
            Circle(SKETCH3_R)
        with Locations(Location((-4.242640687, 4.242640687, 0), (0, 0, 270))):
            Circle(SKETCH3_R)
        with Locations(Location((0, 6, 0), (0, 0, 270))):
            Circle(SKETCH3_R)
        with Locations(Location((4.242640687, 4.242640687, 0), (0, 0, 270))):
            Circle(SKETCH3_R)
    extrude(amount=-SCREWHOLES_DEPTH, mode=Mode.SUBTRACT)


solid = part.part
